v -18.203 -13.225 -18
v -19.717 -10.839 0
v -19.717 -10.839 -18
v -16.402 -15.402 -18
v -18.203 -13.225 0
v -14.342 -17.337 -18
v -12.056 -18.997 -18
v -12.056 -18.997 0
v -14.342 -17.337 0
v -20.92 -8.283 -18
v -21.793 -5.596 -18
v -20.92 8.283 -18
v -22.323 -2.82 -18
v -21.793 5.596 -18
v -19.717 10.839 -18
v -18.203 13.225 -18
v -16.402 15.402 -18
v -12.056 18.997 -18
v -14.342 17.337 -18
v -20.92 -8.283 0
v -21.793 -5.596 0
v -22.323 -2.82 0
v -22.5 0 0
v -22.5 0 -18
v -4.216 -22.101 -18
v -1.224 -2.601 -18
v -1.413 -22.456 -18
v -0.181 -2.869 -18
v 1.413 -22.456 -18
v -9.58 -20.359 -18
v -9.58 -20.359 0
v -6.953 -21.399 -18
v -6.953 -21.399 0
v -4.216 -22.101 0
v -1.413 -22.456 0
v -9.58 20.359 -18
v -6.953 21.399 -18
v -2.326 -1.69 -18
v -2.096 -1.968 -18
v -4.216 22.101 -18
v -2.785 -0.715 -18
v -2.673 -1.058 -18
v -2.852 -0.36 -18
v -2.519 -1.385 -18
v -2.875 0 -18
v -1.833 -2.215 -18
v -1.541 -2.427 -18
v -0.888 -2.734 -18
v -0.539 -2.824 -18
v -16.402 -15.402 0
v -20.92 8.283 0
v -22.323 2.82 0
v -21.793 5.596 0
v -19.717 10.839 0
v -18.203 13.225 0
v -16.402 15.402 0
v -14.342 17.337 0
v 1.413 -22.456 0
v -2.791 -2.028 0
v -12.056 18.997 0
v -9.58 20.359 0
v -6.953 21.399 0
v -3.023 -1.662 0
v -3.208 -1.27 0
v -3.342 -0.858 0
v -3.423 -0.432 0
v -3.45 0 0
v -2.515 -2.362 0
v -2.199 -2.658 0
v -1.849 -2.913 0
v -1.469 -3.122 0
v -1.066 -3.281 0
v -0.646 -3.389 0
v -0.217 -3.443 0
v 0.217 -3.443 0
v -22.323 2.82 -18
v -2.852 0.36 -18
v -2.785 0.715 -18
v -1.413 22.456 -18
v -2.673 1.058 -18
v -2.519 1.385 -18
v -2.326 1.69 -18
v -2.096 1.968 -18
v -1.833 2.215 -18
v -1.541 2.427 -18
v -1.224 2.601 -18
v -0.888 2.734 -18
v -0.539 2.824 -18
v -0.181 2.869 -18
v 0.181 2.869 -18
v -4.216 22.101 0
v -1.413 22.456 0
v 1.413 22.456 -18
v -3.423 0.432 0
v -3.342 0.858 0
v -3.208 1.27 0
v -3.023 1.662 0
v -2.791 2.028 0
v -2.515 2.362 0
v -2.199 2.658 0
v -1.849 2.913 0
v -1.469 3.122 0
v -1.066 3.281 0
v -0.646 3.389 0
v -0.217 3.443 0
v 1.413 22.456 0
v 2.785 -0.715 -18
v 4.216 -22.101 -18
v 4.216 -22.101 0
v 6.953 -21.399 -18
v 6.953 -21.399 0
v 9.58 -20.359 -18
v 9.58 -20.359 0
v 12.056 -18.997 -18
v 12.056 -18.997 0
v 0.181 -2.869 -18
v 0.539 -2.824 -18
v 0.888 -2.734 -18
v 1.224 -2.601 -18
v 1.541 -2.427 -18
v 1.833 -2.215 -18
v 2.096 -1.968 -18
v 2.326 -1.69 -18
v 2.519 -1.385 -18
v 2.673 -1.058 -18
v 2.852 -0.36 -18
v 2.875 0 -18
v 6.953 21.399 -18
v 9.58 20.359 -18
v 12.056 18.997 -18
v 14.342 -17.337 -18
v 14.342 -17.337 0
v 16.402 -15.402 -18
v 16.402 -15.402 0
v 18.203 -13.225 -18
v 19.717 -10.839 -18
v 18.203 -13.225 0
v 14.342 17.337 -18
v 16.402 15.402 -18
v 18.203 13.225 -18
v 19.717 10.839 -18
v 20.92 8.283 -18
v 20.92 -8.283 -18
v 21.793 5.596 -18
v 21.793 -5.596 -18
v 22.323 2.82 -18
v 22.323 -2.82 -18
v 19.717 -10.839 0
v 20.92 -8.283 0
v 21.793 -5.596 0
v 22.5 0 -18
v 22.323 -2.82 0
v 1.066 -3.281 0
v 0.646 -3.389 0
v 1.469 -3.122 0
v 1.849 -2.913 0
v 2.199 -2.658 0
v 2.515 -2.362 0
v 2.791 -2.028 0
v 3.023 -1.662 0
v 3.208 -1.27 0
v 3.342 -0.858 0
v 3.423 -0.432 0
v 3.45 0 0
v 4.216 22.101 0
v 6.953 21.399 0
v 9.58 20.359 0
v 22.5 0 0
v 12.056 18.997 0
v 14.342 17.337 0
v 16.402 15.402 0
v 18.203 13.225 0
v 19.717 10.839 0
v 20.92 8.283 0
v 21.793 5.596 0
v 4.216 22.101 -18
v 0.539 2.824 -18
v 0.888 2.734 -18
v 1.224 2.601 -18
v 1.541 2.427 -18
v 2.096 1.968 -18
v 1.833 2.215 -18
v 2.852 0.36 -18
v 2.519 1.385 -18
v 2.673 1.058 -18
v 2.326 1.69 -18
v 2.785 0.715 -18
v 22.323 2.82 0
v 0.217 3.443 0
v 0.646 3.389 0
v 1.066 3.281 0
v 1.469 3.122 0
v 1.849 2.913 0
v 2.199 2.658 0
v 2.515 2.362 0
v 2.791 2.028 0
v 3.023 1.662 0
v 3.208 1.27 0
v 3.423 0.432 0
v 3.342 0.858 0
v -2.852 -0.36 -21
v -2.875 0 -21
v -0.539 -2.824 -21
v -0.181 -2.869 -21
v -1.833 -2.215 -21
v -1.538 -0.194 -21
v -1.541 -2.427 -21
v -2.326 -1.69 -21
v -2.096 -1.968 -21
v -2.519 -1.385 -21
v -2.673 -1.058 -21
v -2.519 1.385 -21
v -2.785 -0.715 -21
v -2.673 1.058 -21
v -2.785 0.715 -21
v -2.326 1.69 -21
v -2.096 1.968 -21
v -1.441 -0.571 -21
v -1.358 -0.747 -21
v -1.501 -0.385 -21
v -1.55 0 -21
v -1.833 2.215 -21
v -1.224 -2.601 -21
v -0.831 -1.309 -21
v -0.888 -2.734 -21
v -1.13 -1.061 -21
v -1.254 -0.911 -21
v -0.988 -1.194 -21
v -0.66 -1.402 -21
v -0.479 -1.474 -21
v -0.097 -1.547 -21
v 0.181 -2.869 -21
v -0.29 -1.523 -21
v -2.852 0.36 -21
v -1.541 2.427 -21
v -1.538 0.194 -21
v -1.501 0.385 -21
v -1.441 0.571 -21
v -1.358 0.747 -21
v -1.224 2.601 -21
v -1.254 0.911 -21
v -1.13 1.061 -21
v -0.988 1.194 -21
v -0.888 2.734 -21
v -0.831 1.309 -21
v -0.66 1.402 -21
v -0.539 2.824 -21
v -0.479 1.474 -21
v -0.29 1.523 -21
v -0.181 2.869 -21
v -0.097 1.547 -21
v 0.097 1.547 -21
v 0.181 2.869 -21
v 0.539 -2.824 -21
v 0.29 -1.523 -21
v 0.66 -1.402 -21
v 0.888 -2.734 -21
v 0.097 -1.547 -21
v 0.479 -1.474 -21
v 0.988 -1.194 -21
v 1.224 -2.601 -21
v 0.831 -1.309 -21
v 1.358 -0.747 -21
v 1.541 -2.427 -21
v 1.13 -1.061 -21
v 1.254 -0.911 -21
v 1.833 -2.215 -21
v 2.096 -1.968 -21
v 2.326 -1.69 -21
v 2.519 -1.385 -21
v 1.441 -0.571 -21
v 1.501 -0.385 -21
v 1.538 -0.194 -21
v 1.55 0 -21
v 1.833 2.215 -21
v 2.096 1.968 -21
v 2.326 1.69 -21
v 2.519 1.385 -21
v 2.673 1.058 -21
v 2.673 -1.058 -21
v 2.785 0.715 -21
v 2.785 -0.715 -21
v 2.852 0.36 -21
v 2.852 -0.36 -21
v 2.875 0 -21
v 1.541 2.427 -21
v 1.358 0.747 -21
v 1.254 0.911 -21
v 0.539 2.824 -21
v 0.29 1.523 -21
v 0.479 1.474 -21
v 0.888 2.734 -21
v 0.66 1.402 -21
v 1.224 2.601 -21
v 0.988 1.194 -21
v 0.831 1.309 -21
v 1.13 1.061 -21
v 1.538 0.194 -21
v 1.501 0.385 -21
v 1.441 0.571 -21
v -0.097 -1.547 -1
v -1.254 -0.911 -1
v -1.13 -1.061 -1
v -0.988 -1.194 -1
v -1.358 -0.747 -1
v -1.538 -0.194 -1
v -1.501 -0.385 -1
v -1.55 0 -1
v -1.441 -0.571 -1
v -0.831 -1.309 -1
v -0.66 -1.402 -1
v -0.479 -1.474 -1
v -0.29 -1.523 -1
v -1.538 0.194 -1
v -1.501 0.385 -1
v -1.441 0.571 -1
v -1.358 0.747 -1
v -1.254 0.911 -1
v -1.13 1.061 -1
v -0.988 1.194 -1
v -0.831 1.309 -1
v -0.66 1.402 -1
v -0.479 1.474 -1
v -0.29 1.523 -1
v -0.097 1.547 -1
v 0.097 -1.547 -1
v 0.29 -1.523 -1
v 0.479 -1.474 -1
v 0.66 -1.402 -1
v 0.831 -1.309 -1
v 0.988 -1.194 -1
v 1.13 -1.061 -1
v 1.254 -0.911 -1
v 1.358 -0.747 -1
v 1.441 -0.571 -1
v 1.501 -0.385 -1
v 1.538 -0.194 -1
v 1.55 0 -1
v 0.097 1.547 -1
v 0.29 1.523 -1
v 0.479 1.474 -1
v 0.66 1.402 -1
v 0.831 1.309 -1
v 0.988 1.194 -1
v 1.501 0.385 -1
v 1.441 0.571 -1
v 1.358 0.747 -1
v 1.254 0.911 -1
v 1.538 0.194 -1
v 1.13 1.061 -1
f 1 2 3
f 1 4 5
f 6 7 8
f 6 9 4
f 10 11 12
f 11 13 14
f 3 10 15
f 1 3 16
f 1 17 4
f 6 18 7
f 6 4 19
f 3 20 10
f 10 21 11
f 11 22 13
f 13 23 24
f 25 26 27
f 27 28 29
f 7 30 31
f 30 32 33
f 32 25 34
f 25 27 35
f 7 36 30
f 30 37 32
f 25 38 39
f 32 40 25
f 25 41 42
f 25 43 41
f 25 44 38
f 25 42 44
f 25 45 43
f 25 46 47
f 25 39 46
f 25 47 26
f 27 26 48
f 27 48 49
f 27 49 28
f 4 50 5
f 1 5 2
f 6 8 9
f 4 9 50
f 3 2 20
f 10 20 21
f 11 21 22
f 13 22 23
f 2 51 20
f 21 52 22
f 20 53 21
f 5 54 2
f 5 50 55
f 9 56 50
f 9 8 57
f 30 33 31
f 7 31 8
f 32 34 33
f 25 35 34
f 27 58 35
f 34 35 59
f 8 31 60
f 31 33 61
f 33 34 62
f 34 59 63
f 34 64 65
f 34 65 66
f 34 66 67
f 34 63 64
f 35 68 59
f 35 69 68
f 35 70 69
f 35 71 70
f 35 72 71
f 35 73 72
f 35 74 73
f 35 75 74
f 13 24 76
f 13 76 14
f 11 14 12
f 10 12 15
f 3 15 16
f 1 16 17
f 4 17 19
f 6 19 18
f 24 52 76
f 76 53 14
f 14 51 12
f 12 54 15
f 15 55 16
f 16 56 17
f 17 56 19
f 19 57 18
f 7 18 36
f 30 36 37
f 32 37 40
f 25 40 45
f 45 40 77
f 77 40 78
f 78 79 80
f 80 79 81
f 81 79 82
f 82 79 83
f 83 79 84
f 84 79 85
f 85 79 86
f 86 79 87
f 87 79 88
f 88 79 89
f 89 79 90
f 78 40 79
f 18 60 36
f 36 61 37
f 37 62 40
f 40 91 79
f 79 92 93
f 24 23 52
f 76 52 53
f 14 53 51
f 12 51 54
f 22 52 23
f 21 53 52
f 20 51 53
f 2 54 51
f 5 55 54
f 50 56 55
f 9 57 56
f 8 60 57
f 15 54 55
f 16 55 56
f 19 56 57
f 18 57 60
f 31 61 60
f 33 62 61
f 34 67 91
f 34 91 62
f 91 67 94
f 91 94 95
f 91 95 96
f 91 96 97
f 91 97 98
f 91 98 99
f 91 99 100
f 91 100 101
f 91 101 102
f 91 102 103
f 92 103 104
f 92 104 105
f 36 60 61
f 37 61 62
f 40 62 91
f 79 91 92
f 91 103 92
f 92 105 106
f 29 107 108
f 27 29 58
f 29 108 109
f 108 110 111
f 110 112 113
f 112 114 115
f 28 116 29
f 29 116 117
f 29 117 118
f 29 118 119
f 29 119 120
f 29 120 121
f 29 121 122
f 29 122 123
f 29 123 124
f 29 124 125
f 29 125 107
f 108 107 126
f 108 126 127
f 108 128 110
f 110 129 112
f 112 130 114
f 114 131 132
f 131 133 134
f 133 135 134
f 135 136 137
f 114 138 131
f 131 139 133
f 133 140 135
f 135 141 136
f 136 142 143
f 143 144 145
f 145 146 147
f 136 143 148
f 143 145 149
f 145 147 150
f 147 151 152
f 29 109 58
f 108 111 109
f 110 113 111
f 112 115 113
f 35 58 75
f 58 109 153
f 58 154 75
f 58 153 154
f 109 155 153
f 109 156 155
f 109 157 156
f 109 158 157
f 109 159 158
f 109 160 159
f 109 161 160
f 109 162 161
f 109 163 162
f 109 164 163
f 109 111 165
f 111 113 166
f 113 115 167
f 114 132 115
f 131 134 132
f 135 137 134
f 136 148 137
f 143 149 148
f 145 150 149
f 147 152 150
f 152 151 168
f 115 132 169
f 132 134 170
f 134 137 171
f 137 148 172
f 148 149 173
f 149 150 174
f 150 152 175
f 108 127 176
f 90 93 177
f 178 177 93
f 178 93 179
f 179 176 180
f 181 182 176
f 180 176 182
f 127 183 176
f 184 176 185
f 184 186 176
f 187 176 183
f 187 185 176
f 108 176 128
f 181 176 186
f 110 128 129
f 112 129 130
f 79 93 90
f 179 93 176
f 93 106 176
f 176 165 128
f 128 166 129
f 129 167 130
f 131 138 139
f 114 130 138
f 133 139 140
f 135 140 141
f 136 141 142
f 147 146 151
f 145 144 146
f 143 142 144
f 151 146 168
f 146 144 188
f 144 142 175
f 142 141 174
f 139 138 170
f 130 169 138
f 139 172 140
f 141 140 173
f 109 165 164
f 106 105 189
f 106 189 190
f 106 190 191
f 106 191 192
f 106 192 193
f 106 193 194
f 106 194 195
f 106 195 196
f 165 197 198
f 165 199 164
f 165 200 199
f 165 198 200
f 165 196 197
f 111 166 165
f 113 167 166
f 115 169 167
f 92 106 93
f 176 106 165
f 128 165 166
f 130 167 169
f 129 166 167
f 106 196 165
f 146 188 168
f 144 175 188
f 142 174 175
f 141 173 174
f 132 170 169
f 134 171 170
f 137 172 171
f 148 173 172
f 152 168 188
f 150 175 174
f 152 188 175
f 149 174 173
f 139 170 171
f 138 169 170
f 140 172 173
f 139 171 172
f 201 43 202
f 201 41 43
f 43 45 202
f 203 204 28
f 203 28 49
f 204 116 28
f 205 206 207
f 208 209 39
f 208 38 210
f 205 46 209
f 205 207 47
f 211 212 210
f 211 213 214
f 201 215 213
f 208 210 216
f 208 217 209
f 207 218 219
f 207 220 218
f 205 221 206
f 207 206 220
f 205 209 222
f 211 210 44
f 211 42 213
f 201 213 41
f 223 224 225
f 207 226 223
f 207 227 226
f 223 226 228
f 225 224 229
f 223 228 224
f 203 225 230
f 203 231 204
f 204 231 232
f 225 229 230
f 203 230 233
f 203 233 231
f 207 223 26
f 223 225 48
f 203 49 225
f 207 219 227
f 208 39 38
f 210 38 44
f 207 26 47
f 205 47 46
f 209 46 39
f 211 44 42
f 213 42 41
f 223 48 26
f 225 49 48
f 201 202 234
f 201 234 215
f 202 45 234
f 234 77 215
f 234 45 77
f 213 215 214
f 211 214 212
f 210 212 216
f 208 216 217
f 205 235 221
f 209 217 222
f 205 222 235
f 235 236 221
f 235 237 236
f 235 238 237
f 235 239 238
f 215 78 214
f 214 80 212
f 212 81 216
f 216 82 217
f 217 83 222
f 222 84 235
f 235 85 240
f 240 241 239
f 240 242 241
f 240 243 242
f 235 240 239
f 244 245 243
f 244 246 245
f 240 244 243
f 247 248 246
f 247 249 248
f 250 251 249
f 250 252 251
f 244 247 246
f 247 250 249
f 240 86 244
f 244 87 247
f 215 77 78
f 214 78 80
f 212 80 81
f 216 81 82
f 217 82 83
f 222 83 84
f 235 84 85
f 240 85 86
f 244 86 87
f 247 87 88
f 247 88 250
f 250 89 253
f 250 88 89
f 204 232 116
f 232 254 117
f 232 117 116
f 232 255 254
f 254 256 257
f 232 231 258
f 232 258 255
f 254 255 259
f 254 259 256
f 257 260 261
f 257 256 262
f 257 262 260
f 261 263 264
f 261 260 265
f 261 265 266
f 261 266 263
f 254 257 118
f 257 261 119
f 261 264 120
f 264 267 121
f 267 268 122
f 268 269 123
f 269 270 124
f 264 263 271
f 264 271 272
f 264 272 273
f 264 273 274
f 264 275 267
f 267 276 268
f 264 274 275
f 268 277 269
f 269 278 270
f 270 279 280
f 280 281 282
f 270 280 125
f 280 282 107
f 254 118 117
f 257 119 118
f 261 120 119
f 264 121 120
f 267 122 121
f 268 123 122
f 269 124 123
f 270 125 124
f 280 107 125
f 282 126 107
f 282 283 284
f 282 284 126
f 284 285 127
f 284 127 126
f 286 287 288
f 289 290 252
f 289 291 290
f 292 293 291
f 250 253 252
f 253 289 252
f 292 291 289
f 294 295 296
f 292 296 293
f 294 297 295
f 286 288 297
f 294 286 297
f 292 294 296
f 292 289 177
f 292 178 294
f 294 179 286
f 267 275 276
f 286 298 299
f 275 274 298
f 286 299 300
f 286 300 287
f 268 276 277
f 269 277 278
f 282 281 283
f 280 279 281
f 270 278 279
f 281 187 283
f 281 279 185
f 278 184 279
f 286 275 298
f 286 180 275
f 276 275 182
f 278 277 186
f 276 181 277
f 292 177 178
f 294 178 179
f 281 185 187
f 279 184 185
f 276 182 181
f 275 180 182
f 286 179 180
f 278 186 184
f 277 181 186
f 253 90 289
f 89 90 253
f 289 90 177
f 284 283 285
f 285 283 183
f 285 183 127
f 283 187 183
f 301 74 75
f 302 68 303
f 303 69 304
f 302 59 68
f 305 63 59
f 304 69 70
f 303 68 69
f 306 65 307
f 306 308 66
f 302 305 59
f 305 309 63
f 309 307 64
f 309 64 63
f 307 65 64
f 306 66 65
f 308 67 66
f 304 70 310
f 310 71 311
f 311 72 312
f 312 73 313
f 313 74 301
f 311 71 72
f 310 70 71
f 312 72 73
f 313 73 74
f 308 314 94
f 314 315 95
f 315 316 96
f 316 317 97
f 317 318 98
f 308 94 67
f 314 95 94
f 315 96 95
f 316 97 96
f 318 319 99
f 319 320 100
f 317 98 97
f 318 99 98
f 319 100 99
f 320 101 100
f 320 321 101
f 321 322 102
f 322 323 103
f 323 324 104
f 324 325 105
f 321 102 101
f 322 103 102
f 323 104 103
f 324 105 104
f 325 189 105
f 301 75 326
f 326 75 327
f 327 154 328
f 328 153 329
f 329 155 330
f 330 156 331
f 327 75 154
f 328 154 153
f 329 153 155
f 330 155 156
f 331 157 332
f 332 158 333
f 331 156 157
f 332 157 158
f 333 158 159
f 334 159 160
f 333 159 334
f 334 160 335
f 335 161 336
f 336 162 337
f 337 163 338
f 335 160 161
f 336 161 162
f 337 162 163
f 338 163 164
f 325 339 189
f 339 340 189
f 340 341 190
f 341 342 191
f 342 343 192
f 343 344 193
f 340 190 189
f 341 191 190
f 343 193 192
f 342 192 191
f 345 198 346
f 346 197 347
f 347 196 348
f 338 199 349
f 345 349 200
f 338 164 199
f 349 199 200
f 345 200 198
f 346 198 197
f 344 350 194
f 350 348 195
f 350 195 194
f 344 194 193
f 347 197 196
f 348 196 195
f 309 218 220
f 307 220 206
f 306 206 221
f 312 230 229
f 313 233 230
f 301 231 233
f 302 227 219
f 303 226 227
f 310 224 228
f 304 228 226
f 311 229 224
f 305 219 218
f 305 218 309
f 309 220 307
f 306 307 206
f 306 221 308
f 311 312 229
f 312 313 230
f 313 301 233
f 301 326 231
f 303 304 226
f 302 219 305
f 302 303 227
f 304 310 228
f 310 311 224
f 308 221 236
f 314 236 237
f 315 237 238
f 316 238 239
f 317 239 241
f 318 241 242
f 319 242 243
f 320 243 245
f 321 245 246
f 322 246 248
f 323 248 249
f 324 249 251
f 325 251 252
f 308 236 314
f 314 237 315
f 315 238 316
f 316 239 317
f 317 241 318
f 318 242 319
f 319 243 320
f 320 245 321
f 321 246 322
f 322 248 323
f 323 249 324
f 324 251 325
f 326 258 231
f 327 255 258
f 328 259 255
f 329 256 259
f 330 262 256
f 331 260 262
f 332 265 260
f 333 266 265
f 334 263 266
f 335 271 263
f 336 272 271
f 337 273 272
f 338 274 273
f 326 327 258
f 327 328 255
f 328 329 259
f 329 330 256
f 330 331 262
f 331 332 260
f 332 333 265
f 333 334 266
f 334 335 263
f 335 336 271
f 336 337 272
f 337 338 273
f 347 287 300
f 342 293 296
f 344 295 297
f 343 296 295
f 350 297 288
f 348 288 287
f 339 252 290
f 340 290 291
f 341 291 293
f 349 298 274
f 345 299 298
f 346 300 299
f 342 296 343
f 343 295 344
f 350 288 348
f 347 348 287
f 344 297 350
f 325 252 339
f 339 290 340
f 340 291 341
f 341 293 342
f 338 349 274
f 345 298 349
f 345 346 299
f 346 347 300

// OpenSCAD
$fn = 50;

difference() {
	union() {
		translate(v = [0, 0, -18.0]) {
			cylinder(h = 18, r = 22.5);
		}
		#translate(v = [0, 0, -21.0]) {
			cylinder(h = 21, r = 2.875);
		}
	}
	union() {
		translate(v = [0, 0, 0]) {
			rotate(a = [0, 0, 0]) {
				difference() {
					union() {
						translate(v = [0, 0, -21.0]) {
							cylinder(h = 21, r = 1.25);
						}
						translate(v = [0, 0, -1.0]) {
							cylinder(h = 1.0, r1 = 1.55, r2 = 3.45);
						}
						translate(v = [0, 0, -21.0]) {
							cylinder(h = 21, r = 1.55);
						}
						translate(v = [0, 0, -21.0]) {
							cylinder(h = 21, r = 1.25);
						}
					}
					union();
				}
			}
		}
	}
}
